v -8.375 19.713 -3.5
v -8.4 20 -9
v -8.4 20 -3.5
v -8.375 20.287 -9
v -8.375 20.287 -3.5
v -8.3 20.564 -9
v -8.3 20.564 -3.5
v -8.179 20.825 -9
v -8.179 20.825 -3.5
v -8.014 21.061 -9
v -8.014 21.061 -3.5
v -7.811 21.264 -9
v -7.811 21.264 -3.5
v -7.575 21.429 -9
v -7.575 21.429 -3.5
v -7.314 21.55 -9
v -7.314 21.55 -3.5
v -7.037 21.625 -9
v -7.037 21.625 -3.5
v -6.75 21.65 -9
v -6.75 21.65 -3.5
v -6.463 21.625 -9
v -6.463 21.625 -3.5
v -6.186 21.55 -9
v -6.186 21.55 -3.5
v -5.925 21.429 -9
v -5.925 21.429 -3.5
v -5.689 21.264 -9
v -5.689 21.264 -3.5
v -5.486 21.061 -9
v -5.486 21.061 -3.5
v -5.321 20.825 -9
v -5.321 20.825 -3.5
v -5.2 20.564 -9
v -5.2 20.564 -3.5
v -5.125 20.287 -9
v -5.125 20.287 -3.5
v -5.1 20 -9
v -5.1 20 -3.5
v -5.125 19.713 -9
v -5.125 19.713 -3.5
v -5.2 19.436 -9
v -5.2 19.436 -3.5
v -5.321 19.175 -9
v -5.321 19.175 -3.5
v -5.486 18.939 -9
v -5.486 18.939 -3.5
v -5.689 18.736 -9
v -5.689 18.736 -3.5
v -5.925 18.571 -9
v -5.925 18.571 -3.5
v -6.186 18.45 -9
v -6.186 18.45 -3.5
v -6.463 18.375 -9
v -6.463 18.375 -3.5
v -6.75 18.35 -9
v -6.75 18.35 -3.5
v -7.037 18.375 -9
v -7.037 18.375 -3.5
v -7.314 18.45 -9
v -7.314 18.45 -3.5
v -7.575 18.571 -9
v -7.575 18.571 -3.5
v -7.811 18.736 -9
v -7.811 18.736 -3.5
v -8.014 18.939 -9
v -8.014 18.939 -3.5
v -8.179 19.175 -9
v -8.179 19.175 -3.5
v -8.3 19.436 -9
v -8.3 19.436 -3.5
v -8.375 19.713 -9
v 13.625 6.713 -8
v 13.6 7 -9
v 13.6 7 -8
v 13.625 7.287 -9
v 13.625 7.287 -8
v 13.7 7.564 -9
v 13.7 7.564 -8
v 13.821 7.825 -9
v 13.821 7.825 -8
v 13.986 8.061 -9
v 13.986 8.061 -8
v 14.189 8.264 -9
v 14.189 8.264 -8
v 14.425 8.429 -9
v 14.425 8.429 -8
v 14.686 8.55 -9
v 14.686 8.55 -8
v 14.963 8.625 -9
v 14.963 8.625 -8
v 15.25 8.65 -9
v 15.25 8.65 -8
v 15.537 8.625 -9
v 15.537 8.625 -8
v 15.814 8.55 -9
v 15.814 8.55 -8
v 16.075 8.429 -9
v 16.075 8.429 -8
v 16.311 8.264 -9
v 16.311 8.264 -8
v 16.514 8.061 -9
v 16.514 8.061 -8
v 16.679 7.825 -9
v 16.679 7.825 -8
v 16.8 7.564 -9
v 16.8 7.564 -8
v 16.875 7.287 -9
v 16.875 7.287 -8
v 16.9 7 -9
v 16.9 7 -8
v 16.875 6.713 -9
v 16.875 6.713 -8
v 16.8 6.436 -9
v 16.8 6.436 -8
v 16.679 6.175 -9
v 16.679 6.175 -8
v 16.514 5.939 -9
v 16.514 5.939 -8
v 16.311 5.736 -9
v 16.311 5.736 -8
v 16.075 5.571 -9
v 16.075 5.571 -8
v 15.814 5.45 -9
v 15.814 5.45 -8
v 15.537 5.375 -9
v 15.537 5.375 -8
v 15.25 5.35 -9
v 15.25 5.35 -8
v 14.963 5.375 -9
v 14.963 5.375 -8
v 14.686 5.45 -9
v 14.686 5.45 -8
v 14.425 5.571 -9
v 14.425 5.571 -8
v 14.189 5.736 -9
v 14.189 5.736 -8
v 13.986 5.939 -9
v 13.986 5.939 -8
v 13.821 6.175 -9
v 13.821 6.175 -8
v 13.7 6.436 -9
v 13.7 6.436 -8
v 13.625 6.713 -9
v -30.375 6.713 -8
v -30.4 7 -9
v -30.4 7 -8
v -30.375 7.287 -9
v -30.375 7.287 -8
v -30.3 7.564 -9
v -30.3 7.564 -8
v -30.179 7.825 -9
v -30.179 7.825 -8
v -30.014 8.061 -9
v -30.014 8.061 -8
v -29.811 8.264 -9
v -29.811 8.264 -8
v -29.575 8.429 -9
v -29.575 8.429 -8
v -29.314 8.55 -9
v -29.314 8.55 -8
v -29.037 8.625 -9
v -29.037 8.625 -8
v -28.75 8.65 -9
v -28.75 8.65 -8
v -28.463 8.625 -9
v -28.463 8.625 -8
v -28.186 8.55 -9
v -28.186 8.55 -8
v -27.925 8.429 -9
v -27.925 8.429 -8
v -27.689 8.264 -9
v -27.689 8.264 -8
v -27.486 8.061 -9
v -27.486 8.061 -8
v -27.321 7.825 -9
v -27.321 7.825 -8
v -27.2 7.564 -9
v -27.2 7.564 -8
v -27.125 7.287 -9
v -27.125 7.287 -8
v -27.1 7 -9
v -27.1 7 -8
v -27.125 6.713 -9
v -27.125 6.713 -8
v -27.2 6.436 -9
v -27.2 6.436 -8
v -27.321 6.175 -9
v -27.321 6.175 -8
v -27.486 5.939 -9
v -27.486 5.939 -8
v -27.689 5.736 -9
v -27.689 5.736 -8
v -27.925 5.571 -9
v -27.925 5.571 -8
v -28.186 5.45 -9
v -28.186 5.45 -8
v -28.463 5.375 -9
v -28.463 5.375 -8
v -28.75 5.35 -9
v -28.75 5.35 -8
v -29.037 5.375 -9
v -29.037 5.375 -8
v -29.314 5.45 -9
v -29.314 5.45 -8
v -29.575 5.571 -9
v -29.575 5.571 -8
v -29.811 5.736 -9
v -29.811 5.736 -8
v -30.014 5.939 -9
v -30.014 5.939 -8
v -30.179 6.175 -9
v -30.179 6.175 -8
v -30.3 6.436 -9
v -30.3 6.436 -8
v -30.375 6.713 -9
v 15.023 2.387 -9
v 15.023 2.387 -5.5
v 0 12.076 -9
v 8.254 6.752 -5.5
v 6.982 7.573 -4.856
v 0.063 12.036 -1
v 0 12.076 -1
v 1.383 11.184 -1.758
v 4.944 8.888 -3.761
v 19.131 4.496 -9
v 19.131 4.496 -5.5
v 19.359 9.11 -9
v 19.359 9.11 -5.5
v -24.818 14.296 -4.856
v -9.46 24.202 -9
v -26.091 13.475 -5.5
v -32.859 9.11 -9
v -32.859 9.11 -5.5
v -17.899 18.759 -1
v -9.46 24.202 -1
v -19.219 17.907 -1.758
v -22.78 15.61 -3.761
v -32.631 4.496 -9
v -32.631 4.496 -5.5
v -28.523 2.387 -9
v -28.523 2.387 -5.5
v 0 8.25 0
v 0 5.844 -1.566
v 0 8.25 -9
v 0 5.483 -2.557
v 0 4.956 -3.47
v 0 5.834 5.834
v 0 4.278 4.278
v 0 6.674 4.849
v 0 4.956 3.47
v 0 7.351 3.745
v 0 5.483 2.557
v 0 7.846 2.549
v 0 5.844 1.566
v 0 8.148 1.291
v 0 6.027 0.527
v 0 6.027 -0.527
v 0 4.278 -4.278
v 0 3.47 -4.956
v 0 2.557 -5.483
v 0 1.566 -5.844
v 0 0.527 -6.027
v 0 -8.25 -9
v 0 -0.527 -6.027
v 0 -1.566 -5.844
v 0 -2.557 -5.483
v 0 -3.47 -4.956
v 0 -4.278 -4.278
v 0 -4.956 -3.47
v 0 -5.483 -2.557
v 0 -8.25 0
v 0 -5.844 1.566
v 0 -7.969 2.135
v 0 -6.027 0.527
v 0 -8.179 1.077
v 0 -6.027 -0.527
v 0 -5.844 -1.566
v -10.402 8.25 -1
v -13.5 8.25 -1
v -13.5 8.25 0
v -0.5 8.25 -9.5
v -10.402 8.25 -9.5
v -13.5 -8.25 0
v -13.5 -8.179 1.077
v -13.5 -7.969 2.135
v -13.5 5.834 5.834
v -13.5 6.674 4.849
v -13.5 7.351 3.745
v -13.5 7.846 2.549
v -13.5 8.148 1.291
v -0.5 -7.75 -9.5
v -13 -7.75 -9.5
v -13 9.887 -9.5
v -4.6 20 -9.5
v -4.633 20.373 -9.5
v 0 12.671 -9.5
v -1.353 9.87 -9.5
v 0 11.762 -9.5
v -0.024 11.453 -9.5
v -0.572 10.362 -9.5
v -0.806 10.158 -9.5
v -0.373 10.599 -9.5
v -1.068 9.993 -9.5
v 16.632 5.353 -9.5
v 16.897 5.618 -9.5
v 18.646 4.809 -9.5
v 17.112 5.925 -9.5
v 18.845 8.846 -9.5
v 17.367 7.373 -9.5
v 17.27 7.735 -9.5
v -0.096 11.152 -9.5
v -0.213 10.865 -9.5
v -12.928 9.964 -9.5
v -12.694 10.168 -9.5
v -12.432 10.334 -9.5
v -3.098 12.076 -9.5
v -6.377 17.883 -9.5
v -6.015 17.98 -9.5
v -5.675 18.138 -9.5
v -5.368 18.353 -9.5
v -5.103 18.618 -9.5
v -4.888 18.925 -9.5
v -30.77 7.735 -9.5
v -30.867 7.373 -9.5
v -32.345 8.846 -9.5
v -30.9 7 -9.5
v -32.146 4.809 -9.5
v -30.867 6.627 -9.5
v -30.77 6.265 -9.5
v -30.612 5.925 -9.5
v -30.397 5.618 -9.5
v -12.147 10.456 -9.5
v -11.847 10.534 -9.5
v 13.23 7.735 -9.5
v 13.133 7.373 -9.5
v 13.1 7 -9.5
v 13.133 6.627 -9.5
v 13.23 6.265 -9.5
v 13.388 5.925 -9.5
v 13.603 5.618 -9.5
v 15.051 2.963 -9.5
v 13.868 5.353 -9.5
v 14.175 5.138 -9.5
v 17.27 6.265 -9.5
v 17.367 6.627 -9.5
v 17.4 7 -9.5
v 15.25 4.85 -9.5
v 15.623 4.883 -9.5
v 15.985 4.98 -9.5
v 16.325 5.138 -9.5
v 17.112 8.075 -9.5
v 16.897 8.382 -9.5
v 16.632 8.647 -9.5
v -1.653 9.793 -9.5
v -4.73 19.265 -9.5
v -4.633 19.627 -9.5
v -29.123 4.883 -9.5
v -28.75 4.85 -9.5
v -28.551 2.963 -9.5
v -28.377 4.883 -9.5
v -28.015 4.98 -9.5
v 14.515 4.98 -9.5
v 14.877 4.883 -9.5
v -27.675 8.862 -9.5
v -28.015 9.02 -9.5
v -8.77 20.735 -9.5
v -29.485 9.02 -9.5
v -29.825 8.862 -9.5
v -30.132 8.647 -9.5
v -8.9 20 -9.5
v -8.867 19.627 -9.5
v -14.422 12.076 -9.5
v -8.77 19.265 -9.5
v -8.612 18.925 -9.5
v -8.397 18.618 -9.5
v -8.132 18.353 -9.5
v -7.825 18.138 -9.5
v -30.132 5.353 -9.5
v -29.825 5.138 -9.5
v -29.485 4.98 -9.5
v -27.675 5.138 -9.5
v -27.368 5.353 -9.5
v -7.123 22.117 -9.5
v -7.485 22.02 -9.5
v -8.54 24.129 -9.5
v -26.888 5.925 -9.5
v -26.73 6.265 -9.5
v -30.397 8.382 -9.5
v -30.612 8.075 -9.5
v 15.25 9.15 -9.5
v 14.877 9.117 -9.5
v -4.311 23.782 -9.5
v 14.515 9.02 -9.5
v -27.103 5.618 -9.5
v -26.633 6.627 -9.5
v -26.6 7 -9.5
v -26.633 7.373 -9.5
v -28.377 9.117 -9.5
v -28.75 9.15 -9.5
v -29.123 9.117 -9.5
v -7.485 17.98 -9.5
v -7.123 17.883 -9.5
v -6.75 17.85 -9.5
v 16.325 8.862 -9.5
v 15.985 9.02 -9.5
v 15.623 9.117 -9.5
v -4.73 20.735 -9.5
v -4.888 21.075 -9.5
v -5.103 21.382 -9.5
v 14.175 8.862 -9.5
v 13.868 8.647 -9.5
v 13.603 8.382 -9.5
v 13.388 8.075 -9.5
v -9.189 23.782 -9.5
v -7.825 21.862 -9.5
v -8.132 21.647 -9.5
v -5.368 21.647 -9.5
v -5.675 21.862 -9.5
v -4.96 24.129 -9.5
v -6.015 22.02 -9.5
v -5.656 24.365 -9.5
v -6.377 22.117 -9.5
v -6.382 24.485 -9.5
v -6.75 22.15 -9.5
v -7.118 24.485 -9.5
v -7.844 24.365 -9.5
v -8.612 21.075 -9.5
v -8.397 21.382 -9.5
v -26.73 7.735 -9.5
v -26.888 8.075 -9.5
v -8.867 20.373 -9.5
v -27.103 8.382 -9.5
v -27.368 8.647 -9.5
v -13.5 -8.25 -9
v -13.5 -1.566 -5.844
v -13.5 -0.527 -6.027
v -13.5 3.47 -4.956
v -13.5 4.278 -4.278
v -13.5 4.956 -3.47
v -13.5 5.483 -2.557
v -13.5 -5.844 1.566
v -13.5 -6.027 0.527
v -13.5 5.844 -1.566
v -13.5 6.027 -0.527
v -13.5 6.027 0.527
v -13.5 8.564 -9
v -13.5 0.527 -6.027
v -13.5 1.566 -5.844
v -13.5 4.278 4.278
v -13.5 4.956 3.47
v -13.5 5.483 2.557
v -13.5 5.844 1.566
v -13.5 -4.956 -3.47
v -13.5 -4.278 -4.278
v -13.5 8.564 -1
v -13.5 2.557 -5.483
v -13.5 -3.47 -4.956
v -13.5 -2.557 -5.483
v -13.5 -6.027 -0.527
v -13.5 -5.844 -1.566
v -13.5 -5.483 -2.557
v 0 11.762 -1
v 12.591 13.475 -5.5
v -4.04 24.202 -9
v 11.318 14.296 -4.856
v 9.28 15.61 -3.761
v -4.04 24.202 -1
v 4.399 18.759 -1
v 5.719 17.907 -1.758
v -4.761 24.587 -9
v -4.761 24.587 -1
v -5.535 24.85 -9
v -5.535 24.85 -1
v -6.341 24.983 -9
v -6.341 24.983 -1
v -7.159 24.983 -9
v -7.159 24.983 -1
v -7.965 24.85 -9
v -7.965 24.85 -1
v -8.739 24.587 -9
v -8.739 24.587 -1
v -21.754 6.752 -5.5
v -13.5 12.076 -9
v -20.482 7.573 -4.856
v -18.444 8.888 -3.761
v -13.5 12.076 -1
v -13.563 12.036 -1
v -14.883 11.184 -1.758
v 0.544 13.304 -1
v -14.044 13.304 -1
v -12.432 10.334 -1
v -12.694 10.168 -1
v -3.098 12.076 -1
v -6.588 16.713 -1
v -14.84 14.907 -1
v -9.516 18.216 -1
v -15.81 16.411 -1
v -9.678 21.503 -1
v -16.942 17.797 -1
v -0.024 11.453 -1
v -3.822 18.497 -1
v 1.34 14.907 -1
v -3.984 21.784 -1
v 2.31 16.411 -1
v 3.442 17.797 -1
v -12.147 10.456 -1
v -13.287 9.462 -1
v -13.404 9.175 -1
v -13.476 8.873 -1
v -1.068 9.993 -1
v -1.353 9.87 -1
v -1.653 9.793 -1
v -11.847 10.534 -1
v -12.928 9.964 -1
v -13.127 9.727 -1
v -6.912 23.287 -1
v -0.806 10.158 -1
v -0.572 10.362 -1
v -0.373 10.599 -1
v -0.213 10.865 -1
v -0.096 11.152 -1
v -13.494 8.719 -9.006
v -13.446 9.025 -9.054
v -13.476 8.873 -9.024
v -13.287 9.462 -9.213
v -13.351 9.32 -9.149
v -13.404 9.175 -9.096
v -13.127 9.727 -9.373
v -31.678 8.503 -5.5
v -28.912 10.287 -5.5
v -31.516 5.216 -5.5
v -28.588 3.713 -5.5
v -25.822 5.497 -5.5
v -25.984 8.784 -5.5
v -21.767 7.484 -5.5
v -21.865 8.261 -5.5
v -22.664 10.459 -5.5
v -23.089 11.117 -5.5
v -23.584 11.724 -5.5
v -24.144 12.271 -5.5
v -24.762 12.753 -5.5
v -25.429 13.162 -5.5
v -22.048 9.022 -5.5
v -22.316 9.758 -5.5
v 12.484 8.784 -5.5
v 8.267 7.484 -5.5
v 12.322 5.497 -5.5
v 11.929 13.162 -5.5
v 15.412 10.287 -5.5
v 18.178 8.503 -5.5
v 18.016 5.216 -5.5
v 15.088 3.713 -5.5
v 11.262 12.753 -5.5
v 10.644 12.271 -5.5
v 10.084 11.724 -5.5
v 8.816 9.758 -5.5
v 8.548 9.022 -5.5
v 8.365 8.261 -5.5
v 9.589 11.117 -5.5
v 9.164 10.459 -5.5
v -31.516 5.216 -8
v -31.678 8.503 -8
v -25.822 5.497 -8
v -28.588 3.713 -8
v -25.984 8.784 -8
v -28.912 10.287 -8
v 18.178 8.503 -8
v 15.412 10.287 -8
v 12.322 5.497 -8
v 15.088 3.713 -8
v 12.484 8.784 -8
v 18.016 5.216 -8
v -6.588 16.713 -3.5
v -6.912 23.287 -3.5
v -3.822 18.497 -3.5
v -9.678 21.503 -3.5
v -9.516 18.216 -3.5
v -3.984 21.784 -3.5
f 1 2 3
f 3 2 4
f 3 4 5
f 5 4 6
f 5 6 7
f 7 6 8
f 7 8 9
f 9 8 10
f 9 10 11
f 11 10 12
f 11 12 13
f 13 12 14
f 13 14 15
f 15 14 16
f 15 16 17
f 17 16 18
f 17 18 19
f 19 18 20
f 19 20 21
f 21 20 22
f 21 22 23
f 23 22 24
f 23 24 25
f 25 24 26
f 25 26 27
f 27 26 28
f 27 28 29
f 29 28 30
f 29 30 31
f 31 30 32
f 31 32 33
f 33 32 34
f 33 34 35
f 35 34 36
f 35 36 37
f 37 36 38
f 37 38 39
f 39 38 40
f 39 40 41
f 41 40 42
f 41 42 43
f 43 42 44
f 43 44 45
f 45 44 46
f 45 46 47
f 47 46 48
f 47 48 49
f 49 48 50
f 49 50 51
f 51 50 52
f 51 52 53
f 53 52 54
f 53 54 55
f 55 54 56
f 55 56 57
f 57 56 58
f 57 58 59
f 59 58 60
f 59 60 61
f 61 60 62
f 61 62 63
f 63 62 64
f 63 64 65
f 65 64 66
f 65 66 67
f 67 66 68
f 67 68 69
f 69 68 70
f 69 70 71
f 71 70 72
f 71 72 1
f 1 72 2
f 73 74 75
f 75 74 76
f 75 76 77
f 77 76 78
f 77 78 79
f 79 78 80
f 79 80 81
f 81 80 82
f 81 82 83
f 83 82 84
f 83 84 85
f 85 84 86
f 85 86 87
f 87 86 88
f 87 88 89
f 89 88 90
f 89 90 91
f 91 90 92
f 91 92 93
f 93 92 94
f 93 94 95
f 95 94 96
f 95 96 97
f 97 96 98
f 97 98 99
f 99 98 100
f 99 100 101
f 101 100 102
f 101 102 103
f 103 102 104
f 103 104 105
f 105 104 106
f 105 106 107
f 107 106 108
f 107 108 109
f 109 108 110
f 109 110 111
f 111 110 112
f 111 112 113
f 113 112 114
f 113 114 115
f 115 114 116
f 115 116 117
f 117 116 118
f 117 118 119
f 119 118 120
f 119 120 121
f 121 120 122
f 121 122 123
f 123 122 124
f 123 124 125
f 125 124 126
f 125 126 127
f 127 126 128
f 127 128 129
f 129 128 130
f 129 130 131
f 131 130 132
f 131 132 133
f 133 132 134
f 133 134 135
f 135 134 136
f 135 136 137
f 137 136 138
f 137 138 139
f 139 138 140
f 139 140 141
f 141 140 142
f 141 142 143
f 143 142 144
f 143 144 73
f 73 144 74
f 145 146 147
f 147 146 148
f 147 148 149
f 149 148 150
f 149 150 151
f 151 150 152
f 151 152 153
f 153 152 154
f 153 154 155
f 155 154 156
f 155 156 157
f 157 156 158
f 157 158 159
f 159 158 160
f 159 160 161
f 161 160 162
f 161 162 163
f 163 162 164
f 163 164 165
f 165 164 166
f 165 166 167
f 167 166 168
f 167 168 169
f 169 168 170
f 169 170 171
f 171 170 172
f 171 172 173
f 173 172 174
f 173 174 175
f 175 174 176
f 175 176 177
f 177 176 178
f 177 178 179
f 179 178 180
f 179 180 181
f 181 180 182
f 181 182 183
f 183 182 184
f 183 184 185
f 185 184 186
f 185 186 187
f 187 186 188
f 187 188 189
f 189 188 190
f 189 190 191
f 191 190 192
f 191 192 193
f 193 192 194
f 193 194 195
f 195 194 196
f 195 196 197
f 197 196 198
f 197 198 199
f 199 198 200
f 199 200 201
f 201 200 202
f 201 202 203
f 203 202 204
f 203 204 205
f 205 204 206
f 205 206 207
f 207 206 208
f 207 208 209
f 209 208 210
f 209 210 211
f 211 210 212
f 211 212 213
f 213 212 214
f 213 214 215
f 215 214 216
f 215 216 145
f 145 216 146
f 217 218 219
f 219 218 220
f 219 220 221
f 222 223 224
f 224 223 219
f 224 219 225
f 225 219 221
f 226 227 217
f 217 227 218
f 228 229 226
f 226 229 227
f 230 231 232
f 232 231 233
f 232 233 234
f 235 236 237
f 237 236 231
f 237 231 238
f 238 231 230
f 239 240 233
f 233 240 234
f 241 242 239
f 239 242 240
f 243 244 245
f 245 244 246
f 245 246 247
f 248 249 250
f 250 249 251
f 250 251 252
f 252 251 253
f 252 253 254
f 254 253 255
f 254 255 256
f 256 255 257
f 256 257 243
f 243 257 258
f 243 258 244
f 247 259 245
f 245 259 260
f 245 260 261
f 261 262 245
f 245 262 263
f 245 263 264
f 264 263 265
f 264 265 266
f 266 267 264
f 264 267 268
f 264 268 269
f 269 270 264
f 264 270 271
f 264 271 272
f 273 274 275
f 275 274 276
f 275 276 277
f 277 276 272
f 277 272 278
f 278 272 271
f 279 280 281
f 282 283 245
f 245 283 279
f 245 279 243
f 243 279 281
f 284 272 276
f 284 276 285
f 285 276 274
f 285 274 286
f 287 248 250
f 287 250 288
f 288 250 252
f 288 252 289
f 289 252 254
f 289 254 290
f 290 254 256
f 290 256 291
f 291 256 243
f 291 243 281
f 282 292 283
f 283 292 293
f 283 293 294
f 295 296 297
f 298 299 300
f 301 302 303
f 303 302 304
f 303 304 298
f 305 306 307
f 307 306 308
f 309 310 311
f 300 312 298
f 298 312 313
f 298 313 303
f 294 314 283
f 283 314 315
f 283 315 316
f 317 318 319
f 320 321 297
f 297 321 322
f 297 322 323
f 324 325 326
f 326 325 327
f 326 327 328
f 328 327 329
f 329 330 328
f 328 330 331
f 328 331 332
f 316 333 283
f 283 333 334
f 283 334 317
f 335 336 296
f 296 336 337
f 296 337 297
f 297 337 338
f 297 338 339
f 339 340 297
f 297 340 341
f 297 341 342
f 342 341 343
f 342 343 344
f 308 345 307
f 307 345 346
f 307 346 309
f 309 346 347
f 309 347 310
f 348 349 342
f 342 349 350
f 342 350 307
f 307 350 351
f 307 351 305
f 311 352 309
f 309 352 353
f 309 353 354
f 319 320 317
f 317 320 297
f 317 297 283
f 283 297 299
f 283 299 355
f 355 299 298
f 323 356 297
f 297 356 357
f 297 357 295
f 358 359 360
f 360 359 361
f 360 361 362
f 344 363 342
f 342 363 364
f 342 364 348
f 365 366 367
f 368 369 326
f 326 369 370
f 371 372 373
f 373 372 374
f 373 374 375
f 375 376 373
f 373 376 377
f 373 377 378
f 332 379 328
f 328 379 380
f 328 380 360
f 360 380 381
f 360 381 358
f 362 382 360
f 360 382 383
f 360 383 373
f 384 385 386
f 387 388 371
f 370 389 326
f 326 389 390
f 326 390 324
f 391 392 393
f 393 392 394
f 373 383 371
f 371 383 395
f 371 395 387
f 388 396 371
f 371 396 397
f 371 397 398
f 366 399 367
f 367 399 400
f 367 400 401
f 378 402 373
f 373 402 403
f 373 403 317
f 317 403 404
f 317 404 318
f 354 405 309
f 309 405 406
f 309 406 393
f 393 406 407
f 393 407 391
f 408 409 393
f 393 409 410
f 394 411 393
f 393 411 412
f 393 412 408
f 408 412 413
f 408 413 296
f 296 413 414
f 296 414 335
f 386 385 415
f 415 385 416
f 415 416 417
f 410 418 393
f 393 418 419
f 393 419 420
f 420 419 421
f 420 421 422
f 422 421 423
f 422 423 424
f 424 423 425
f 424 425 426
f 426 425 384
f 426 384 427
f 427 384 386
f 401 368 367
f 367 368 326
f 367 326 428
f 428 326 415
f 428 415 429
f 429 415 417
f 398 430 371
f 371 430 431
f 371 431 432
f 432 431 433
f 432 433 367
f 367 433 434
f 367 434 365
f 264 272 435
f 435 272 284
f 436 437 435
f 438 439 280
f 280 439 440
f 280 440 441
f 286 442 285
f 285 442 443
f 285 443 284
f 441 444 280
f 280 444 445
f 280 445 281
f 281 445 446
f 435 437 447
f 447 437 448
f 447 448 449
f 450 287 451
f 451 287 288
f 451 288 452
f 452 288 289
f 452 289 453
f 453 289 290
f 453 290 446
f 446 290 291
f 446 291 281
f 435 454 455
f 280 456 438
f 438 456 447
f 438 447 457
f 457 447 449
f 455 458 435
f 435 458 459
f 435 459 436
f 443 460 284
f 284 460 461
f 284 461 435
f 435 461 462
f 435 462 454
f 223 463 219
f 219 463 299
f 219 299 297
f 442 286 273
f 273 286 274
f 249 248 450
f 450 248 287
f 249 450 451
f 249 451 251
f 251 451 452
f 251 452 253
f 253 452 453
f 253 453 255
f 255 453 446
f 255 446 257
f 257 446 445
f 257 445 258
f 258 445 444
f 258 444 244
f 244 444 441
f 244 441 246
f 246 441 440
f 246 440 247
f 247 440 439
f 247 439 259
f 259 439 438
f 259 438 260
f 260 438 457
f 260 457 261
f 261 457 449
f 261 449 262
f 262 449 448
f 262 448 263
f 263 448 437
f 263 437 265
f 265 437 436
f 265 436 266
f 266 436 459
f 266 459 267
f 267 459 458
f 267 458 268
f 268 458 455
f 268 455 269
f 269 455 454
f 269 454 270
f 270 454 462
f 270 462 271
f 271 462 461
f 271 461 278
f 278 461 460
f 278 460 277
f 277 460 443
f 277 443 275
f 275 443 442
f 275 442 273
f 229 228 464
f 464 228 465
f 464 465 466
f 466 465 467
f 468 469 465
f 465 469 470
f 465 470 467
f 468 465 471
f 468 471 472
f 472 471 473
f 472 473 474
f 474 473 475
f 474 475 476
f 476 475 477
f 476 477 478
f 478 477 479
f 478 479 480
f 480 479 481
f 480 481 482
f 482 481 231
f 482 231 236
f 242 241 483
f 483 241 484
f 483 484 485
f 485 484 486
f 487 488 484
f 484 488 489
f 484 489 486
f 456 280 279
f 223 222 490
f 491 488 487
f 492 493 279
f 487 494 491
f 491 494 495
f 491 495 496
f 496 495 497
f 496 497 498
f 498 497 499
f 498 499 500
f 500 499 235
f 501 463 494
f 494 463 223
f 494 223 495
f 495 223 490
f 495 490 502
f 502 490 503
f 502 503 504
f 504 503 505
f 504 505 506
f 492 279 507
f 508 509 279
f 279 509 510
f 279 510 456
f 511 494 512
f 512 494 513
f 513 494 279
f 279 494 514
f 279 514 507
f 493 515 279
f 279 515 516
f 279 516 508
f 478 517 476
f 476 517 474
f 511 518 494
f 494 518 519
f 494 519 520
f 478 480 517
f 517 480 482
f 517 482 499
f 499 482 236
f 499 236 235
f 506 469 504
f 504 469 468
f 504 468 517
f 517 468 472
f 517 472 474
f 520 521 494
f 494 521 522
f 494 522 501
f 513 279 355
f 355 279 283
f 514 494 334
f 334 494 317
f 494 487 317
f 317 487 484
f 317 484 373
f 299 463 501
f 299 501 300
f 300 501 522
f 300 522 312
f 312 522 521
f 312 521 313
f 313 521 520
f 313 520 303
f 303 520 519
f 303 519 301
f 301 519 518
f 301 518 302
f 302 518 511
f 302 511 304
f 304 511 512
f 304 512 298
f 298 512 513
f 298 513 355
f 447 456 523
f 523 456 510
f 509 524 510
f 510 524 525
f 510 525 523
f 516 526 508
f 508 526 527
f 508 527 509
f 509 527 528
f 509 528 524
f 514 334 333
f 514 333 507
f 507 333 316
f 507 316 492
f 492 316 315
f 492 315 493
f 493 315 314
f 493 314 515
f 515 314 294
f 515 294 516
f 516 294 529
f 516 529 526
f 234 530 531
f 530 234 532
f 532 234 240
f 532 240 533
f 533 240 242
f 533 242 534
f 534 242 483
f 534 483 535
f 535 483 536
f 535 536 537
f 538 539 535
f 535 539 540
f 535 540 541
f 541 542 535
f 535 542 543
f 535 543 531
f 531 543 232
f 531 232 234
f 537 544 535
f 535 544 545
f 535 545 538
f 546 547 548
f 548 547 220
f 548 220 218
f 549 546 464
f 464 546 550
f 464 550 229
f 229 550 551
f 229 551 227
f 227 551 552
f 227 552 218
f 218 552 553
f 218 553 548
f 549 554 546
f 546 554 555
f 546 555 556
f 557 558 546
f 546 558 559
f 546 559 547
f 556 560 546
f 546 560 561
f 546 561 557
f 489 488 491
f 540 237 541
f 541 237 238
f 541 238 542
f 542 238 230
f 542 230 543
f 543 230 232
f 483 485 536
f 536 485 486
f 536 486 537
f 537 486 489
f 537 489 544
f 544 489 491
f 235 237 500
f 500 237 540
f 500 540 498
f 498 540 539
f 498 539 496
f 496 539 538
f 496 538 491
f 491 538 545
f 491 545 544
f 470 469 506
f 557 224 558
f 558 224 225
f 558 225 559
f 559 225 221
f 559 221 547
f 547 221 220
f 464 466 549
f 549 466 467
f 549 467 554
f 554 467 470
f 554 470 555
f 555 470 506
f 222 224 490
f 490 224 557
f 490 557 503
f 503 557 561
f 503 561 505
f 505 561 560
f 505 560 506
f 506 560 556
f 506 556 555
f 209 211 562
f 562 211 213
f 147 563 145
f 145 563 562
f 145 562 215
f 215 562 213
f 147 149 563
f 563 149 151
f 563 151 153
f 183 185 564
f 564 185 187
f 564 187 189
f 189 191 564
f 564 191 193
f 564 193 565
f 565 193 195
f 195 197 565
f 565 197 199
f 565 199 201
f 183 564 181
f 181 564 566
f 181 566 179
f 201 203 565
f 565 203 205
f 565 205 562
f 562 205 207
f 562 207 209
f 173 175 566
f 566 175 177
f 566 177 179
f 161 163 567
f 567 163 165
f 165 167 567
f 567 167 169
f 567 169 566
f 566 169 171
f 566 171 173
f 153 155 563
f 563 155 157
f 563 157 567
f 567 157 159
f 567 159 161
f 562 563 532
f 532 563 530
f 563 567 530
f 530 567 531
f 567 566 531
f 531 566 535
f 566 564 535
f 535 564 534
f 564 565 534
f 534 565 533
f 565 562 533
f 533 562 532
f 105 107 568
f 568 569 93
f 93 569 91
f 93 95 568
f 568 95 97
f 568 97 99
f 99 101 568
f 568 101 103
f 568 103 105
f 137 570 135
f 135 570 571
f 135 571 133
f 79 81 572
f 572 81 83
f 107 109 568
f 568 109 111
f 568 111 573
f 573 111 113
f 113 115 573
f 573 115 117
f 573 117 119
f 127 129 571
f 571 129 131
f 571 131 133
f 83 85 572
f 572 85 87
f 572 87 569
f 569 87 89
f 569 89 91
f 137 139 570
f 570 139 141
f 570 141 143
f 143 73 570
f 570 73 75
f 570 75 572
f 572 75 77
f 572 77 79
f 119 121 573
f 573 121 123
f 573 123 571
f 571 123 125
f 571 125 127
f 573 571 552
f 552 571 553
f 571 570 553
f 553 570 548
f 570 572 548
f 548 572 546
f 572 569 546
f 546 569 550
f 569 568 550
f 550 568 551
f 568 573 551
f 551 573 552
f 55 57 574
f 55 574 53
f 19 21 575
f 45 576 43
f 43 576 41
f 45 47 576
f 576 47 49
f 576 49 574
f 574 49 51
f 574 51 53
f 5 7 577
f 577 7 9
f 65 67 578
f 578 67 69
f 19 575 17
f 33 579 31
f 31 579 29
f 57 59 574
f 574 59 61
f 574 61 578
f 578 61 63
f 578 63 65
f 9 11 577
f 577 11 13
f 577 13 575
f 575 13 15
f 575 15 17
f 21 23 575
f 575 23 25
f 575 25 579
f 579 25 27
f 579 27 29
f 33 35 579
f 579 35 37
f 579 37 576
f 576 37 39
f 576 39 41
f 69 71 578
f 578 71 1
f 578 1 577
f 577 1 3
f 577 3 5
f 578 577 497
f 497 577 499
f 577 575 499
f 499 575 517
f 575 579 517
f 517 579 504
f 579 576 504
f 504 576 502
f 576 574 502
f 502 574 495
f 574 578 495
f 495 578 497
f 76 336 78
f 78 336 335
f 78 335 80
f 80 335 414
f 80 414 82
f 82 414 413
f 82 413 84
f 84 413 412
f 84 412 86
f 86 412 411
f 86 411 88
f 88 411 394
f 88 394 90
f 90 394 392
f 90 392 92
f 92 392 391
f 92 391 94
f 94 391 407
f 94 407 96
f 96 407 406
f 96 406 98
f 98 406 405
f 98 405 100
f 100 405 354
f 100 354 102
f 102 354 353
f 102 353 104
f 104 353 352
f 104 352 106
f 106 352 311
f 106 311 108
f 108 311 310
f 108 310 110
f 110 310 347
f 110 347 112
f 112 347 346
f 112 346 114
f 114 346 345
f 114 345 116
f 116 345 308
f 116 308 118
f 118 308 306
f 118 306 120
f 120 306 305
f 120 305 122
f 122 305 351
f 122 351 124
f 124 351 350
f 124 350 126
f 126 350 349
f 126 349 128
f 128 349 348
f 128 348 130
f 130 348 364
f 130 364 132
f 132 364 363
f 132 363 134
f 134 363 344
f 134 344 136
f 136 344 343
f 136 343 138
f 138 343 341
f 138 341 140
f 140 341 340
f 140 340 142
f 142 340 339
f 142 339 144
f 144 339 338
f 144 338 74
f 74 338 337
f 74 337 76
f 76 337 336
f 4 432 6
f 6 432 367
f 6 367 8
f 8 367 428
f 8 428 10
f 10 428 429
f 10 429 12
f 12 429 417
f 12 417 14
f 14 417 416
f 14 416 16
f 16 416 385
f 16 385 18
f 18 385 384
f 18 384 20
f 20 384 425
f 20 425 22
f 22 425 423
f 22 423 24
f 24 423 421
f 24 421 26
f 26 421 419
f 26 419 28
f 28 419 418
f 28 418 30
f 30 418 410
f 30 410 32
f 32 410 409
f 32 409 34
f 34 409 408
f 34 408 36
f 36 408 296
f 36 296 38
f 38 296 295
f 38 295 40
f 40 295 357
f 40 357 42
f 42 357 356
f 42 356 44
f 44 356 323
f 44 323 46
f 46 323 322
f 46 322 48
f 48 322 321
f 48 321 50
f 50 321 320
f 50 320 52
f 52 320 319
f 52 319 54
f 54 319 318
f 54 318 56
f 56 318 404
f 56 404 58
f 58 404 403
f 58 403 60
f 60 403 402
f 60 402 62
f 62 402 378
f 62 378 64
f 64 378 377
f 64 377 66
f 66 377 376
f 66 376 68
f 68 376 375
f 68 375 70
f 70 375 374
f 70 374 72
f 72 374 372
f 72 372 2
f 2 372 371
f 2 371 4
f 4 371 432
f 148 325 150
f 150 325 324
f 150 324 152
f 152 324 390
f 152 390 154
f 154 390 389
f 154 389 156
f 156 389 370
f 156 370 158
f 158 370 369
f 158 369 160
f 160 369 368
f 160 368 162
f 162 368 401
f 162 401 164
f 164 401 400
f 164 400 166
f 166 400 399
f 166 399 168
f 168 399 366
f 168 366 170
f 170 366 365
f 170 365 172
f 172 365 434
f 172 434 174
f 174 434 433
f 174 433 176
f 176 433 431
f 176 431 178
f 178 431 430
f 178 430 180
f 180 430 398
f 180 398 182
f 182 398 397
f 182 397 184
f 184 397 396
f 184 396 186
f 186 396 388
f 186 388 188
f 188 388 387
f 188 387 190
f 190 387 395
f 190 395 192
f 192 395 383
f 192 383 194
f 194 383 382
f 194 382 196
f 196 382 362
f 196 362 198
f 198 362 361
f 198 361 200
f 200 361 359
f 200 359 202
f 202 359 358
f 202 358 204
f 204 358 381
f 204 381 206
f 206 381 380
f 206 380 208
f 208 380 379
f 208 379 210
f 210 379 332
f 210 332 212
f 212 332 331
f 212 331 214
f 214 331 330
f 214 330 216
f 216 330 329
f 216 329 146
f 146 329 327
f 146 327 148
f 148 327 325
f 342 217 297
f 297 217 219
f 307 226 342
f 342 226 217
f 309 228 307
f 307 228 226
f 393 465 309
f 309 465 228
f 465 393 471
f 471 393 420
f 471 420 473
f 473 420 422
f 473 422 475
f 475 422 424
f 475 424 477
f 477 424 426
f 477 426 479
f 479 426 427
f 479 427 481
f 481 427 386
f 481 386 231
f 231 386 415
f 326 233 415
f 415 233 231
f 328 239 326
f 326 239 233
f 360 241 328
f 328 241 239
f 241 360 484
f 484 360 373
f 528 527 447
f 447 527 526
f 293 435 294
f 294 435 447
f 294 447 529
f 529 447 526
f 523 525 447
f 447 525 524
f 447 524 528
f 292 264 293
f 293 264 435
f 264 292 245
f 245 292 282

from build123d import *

# Parameters (mm, degrees)
BOSS_EXTRUDE1_DEPTH = 13.5
CUT_EXTRUDE1_DEPTH  = 19.454335534
SKETCH14_R          = 1.65
BOSS_EXTRUDE3_DEPTH = 8.5
CUT_EXTRUDE7_DEPTH  = 43.153930156
FILLET2_R           = 2
CUT_EXTRUDE9_DEPTH  = 4.5
CHAMFER2_SIZE       = 12
CHAMFER2_SIZE_2     = 6
CHAMFER3_SIZE       = 6
CHAMFER3_SIZE_2     = 12
CUT_EXTRUDE11_DEPTH = 2.5
CUT_EXTRUDE12_DEPTH = 2.5
CHAMFER4_SIZE       = 0.5
CHAMFER8_SIZE       = 0.5


with BuildPart() as part:
    # Sketch1 → Boss-Extrude1 (new body)
    with BuildSketch(Plane.ZY):
        with BuildLine():
            Line((-9.5, 8.25), (-9.5, -8.25))
            Line((-9.5, -8.25), (0, -8.25))
            ThreePointArc((0, -8.25), (8.25, 0), (0, 8.25))
            Line((0, 8.25), (-9.5, 8.25))
        make_face()
    extrude(amount=BOSS_EXTRUDE1_DEPTH)

    # Sketch7 → Cut-Extrude1 (cut, through all)
    with BuildSketch(Plane.ZY.offset(13.5)):
        with BuildLine():
            Line((13.481907846, 13.481907846), (4.277996026, 4.277996026))
            ThreePointArc((4.277996026, 4.277996026), (-5.843851249, 1.565855223), (1.565855223, -5.843851249))
            Line((1.565855223, -5.843851249), (4.934720763, -18.416628609))
            Line((4.934720763, -18.416628609), (13.481907846, 13.481907846))
        make_face()
    extrude(amount=-CUT_EXTRUDE1_DEPTH, mode=Mode.SUBTRACT)

    # Sketch14 → Boss-Extrude3 (add)
    with BuildSketch(Plane(origin=(0, 0, -9.5), x_dir=(-1, 0, 0), z_dir=(0, 0, -1))):
        with BuildLine():
            Line((4.039848555, 24.201794753), (-19.358847021, 9.109670469))
            Line((-19.358847021, 9.109670469), (-19.131451731, 4.496469334))
            Line((-19.131451731, 4.496469334), (-15.022604709, 2.386798865))
            Line((-15.022604709, 2.386798865), (0, 12.07635684))
            Line((0, 12.07635684), (0, 8.25))
            Line((0, 8.25), (13.5, 8.25))
            Line((13.5, 8.25), (13.5, 12.07635684))
            Line((13.5, 12.07635684), (28.522604709, 2.386798865))
            Line((28.522604709, 2.386798865), (32.631451731, 4.496469334))
            Line((32.631451731, 4.496469334), (32.858847021, 9.109670469))
            Line((32.858847021, 9.109670469), (9.460151445, 24.201794753))
            ThreePointArc((9.460151445, 24.201794753), (6.75, 25), (4.039848555, 24.201794753))
        make_face()
        with Locations((6.75, 20)):
            Circle(SKETCH14_R, mode=Mode.SUBTRACT)
        with Locations((-15.25, 7)):
            Circle(SKETCH14_R, mode=Mode.SUBTRACT)
        with Locations(Location((28.75, 7, 0), (0, 0, 180))):
            Circle(SKETCH14_R, mode=Mode.SUBTRACT)
    extrude(amount=-BOSS_EXTRUDE3_DEPTH)

    # Sketch15 → Cut-Extrude7 (cut, through all)
    with BuildSketch(Plane.XY.offset(-1)):
        Polygon((0, 8.25), (-10.401710887, 8.25), (0, 10.084102275), align=None)
        Polygon((-13.5, 10.242254565), (-13.5, 12.07635684), (-3.098289113, 12.07635684), align=None)
    extrude(amount=-CUT_EXTRUDE7_DEPTH, mode=Mode.SUBTRACT)

    # Fillet2
    fillet2_edges = [part.edges().sort_by_distance(p)[0] for p in [
        (0, 10.084102275, -5.25),
        (-13.5, 10.242254565, -5.25),
    ]]
    fillet(fillet2_edges, radius=FILLET2_R)

    # Sketch17 → Cut-Extrude9 (cut)
    with BuildSketch(Plane.XY.offset(-1)):
        with BuildLine():
            Line((19.131451731, 4.496469334), (19.358847021, 9.109670469))
            Line((19.358847021, 9.109670469), (17.418121156, 10.361435802))
            ThreePointArc((17.418121156, 10.361435802), (11.888564198, 9.168121156), (13.081878844, 3.638564198))
            Line((13.081878844, 3.638564198), (15.022604709, 2.386798865))
            Line((15.022604709, 2.386798865), (19.131451731, 4.496469334))
        make_face()
        with BuildLine():
            Line((-32.631451731, 4.496469334), (-28.522604709, 2.386798865))
            Line((-28.522604709, 2.386798865), (-26.581878844, 3.638564198))
            ThreePointArc((-26.581878844, 3.638564198), (-25.388564198, 9.168121156), (-30.918121156, 10.361435802))
            Line((-30.918121156, 10.361435802), (-32.858847021, 9.109670469))
            Line((-32.858847021, 9.109670469), (-32.631451731, 4.496469334))
        make_face()
    extrude(amount=-CUT_EXTRUDE9_DEPTH, mode=Mode.SUBTRACT)

    # Chamfer2
    # the kernel refuses this chamfer: 12, 6 mm, written as the material it takes off along each edge
    with BuildSketch(Plane(origin=(-28.75, 7, -1), x_dir=(-0.8386519680093931, -0.5446676753342096, 0), z_dir=(-0.5446676753342096, 0.8386519680093931, 0))) as chamfer2_piece_1_section:
        Polygon((4 + CHAMFER2_SIZE, 0), (4, -CHAMFER2_SIZE_2), (4, 0), align=None)
    chamfer2_piece_1 = revolve(axis=Axis((-28.75, 7, -1), (0, 0, 1)), revolution_arc=359.64, mode=Mode.PRIVATE)
    chamfer2_piece_1 = split(chamfer2_piece_1, bisect_by=Plane(origin=(-26.581878844, 3.638564198, -1), z_dir=(-0.5420302889814643, 0.8403589505840171, 0)), keep=Keep.TOP, mode=Mode.PRIVATE)
    chamfer2_piece_1 = split(chamfer2_piece_1, bisect_by=Plane(origin=(-28.75, 7, -5.5), z_dir=(0, 0, 1)), keep=Keep.TOP, mode=Mode.PRIVATE)
    add(chamfer2_piece_1, mode=Mode.SUBTRACT)

    # Chamfer3
    # the kernel refuses this chamfer: 12, 6 mm, written as the material it takes off along each edge
    with BuildSketch(Plane(origin=(15.25, 7, -1), x_dir=(0.8420576391550663, -0.5393875530085916, 0), z_dir=(-0.5393875530085916, -0.8420576391550663, 0))) as chamfer3_piece_1_section:
        Polygon((4, -CHAMFER3_SIZE), (4 + CHAMFER3_SIZE_2, 0), (4, 0), align=None)
    chamfer3_piece_1 = revolve(axis=Axis((15.25, 7, -1), (0, 0, 1)), revolution_arc=359.64, mode=Mode.PRIVATE)
    chamfer3_piece_1 = split(chamfer3_piece_1, bisect_by=Plane(origin=(15.25, 7, -5.5), z_dir=(0, 0, 1)), keep=Keep.TOP, mode=Mode.PRIVATE)
    chamfer3_piece_1 = split(chamfer3_piece_1, bisect_by=Plane(origin=(0, 7, -1), z_dir=(1, 0, 0)), keep=Keep.TOP, mode=Mode.PRIVATE)
    add(chamfer3_piece_1, mode=Mode.SUBTRACT)

    # Sketch19 → Cut-Extrude11 (cut)
    with BuildSketch(Plane.XY.offset(-5.5)):
        Polygon((-31.515534358, 5.2162344), (-28.587980855, 3.713094191), (-25.822446497, 5.496859791), (-25.984465642, 8.7837656), (-28.912019145, 10.286905809), (-31.677553503, 8.503140209), align=None)
        Polygon((18.015534358, 5.2162344), (18.177553503, 8.503140209), (15.412019145, 10.286905809), (12.484465642, 8.7837656), (12.322446497, 5.496859791), (15.087980855, 3.713094191), align=None)
    extrude(amount=-CUT_EXTRUDE11_DEPTH, mode=Mode.SUBTRACT)

    # Sketch20 → Cut-Extrude12 (cut)
    with BuildSketch(Plane.XY.offset(-1)):
        Polygon((-9.515534358, 18.2162344), (-6.587980855, 16.713094191), (-3.822446497, 18.496859791), (-3.984465642, 21.7837656), (-6.912019145, 23.286905809), (-9.677553503, 21.503140209), align=None)
    extrude(amount=-CUT_EXTRUDE12_DEPTH, mode=Mode.SUBTRACT)

    # Chamfer4
    chamfer4_edges = [part.edges().sort_by_distance(p)[0] for p in [
        (-5.1, 20, -9.5),
        (16.9, 7, -9.5),
        (-30.4, 7, -9.5),
    ]]
    chamfer(chamfer4_edges, length=CHAMFER4_SIZE)

    # Chamfer8
    # the kernel refuses this chamfer: 0.5 mm, written as the material it takes off along each edge
    with BuildSketch(Plane(origin=(-13.5, 10.749985843, -9.5), x_dir=(1, 0, 0), z_dir=(0, -1, 0))) as chamfer8_piece_1:
        Polygon((CHAMFER8_SIZE, 0), (0, CHAMFER8_SIZE), (0, 0), align=None)
    extrude(amount=20.285827337, mode=Mode.SUBTRACT)
    with BuildSketch(Plane(origin=(-12.419431591, 12.773321877, -9.5), x_dir=(-0.5420302889814643, 0.8403589505840171, 0), z_dir=(-0.8403589505840171, -0.5420302889814643, 0))) as chamfer8_piece_2_section:
        Polygon((CHAMFER8_SIZE, 0), (0, -CHAMFER8_SIZE), (0, 0), align=None)
    chamfer8_piece_2 = extrude(amount=20.448097226, mode=Mode.PRIVATE)
    chamfer8_piece_2 = split(chamfer8_piece_2, bisect_by=Plane(origin=(-12.419431591, 12.07635684, -9.5), z_dir=(0, -1, 0)), keep=Keep.TOP, mode=Mode.PRIVATE)
    add(chamfer8_piece_2, mode=Mode.SUBTRACT)
    with BuildSketch(Plane(origin=(-27.378731078, 1.799481691, -9.5), x_dir=(0.4567570550126589, 0.8895914751705769, 0), z_dir=(-0.8895914751705769, 0.4567570550126589, 0)), Plane(origin=(-32.568146508, 3.212187123, -9.5), x_dir=(0.9987873439941226, 0.04923252458656117, 0), z_dir=(-0.04923252458656117, 0.9987873439941226, 0)), Plane(origin=(19.422152244, 10.39395268, -9.5), x_dir=(-0.9987873439941226, 0.049232524586561265, 0), z_dir=(-0.049232524586561265, -0.9987873439941226, 0)), Plane(origin=(20.275325362, 5.083786508, -9.5), x_dir=(-0.4567570550126585, 0.8895914751705769, 0), z_dir=(-0.889591475170577, -0.45675705501265856, 0))) as chamfer8_piece_3:
        Polygon((CHAMFER8_SIZE, 0), (0, -CHAMFER8_SIZE), (0, 0), align=None)
    extrude(amount=7.190485141, mode=Mode.SUBTRACT)
    with BuildSketch(Plane(origin=(-33.93941543, 8.412705433, -9.5), x_dir=(0.5420302889814647, -0.8403589505840169, 0), z_dir=(0.8403589505840168, 0.5420302889814647, 0)), Plane(origin=(-4.039848555, 24.201794753, -9.5), x_dir=(-0.5420302889814645, -0.840358950584017, 0), z_dir=(0.8403589505840169, -0.5420302889814645, 0))) as chamfer8_piece_4:
        Polygon((CHAMFER8_SIZE, 0), (0, -CHAMFER8_SIZE), (0, 0), align=None)
    extrude(amount=29.12953324, mode=Mode.SUBTRACT)
    with BuildSketch(Plane(origin=(-6.75, 20, -9.5), x_dir=(-0.5420302889814639, 0.8403589505840172, 0), z_dir=(-0.8403589505840172, -0.5420302889814639, 0))) as chamfer8_piece_5:
        Polygon((5 - CHAMFER8_SIZE, 0), (5, -CHAMFER8_SIZE), (5, 0), align=None)
    revolve(axis=Axis((-6.75, 20, -9.5), (0, 0, -1)), revolution_arc=65.643913307, mode=Mode.SUBTRACT)
    with BuildSketch(Plane(origin=(16.103173118, 1.689833828, -9.5), x_dir=(0.5420302889814647, 0.8403589505840168, 0), z_dir=(-0.8403589505840168, 0.5420302889814647, 0))) as chamfer8_piece_6_section:
        Polygon((CHAMFER8_SIZE, 0), (0, -CHAMFER8_SIZE), (0, 0), align=None)
    chamfer8_piece_6 = extrude(amount=20.448097226, mode=Mode.PRIVATE)
    chamfer8_piece_6 = split(chamfer8_piece_6, bisect_by=Plane(origin=(0, 1.689833828, -9.5), z_dir=(1, 0, 0)), keep=Keep.TOP, mode=Mode.PRIVATE)
    add(chamfer8_piece_6, mode=Mode.SUBTRACT)
    with BuildSketch(Plane(origin=(0, -9.535841494, -9.5), x_dir=(-1, 0, 0), z_dir=(0, 1, 0))) as chamfer8_piece_7:
        Polygon((CHAMFER8_SIZE, 0), (0, CHAMFER8_SIZE), (0, 0), align=None)
    extrude(amount=19.071682988, mode=Mode.SUBTRACT)
    with BuildSketch(Plane(origin=(1.285841494, -8.25, -9.5), x_dir=(0, 1, 0), z_dir=(-1, 0, 0))) as chamfer8_piece_8:
        Polygon((CHAMFER8_SIZE, 0), (0, -CHAMFER8_SIZE), (0, 0), align=None)
    extrude(amount=16.071682988, mode=Mode.SUBTRACT)


solid = part.part
